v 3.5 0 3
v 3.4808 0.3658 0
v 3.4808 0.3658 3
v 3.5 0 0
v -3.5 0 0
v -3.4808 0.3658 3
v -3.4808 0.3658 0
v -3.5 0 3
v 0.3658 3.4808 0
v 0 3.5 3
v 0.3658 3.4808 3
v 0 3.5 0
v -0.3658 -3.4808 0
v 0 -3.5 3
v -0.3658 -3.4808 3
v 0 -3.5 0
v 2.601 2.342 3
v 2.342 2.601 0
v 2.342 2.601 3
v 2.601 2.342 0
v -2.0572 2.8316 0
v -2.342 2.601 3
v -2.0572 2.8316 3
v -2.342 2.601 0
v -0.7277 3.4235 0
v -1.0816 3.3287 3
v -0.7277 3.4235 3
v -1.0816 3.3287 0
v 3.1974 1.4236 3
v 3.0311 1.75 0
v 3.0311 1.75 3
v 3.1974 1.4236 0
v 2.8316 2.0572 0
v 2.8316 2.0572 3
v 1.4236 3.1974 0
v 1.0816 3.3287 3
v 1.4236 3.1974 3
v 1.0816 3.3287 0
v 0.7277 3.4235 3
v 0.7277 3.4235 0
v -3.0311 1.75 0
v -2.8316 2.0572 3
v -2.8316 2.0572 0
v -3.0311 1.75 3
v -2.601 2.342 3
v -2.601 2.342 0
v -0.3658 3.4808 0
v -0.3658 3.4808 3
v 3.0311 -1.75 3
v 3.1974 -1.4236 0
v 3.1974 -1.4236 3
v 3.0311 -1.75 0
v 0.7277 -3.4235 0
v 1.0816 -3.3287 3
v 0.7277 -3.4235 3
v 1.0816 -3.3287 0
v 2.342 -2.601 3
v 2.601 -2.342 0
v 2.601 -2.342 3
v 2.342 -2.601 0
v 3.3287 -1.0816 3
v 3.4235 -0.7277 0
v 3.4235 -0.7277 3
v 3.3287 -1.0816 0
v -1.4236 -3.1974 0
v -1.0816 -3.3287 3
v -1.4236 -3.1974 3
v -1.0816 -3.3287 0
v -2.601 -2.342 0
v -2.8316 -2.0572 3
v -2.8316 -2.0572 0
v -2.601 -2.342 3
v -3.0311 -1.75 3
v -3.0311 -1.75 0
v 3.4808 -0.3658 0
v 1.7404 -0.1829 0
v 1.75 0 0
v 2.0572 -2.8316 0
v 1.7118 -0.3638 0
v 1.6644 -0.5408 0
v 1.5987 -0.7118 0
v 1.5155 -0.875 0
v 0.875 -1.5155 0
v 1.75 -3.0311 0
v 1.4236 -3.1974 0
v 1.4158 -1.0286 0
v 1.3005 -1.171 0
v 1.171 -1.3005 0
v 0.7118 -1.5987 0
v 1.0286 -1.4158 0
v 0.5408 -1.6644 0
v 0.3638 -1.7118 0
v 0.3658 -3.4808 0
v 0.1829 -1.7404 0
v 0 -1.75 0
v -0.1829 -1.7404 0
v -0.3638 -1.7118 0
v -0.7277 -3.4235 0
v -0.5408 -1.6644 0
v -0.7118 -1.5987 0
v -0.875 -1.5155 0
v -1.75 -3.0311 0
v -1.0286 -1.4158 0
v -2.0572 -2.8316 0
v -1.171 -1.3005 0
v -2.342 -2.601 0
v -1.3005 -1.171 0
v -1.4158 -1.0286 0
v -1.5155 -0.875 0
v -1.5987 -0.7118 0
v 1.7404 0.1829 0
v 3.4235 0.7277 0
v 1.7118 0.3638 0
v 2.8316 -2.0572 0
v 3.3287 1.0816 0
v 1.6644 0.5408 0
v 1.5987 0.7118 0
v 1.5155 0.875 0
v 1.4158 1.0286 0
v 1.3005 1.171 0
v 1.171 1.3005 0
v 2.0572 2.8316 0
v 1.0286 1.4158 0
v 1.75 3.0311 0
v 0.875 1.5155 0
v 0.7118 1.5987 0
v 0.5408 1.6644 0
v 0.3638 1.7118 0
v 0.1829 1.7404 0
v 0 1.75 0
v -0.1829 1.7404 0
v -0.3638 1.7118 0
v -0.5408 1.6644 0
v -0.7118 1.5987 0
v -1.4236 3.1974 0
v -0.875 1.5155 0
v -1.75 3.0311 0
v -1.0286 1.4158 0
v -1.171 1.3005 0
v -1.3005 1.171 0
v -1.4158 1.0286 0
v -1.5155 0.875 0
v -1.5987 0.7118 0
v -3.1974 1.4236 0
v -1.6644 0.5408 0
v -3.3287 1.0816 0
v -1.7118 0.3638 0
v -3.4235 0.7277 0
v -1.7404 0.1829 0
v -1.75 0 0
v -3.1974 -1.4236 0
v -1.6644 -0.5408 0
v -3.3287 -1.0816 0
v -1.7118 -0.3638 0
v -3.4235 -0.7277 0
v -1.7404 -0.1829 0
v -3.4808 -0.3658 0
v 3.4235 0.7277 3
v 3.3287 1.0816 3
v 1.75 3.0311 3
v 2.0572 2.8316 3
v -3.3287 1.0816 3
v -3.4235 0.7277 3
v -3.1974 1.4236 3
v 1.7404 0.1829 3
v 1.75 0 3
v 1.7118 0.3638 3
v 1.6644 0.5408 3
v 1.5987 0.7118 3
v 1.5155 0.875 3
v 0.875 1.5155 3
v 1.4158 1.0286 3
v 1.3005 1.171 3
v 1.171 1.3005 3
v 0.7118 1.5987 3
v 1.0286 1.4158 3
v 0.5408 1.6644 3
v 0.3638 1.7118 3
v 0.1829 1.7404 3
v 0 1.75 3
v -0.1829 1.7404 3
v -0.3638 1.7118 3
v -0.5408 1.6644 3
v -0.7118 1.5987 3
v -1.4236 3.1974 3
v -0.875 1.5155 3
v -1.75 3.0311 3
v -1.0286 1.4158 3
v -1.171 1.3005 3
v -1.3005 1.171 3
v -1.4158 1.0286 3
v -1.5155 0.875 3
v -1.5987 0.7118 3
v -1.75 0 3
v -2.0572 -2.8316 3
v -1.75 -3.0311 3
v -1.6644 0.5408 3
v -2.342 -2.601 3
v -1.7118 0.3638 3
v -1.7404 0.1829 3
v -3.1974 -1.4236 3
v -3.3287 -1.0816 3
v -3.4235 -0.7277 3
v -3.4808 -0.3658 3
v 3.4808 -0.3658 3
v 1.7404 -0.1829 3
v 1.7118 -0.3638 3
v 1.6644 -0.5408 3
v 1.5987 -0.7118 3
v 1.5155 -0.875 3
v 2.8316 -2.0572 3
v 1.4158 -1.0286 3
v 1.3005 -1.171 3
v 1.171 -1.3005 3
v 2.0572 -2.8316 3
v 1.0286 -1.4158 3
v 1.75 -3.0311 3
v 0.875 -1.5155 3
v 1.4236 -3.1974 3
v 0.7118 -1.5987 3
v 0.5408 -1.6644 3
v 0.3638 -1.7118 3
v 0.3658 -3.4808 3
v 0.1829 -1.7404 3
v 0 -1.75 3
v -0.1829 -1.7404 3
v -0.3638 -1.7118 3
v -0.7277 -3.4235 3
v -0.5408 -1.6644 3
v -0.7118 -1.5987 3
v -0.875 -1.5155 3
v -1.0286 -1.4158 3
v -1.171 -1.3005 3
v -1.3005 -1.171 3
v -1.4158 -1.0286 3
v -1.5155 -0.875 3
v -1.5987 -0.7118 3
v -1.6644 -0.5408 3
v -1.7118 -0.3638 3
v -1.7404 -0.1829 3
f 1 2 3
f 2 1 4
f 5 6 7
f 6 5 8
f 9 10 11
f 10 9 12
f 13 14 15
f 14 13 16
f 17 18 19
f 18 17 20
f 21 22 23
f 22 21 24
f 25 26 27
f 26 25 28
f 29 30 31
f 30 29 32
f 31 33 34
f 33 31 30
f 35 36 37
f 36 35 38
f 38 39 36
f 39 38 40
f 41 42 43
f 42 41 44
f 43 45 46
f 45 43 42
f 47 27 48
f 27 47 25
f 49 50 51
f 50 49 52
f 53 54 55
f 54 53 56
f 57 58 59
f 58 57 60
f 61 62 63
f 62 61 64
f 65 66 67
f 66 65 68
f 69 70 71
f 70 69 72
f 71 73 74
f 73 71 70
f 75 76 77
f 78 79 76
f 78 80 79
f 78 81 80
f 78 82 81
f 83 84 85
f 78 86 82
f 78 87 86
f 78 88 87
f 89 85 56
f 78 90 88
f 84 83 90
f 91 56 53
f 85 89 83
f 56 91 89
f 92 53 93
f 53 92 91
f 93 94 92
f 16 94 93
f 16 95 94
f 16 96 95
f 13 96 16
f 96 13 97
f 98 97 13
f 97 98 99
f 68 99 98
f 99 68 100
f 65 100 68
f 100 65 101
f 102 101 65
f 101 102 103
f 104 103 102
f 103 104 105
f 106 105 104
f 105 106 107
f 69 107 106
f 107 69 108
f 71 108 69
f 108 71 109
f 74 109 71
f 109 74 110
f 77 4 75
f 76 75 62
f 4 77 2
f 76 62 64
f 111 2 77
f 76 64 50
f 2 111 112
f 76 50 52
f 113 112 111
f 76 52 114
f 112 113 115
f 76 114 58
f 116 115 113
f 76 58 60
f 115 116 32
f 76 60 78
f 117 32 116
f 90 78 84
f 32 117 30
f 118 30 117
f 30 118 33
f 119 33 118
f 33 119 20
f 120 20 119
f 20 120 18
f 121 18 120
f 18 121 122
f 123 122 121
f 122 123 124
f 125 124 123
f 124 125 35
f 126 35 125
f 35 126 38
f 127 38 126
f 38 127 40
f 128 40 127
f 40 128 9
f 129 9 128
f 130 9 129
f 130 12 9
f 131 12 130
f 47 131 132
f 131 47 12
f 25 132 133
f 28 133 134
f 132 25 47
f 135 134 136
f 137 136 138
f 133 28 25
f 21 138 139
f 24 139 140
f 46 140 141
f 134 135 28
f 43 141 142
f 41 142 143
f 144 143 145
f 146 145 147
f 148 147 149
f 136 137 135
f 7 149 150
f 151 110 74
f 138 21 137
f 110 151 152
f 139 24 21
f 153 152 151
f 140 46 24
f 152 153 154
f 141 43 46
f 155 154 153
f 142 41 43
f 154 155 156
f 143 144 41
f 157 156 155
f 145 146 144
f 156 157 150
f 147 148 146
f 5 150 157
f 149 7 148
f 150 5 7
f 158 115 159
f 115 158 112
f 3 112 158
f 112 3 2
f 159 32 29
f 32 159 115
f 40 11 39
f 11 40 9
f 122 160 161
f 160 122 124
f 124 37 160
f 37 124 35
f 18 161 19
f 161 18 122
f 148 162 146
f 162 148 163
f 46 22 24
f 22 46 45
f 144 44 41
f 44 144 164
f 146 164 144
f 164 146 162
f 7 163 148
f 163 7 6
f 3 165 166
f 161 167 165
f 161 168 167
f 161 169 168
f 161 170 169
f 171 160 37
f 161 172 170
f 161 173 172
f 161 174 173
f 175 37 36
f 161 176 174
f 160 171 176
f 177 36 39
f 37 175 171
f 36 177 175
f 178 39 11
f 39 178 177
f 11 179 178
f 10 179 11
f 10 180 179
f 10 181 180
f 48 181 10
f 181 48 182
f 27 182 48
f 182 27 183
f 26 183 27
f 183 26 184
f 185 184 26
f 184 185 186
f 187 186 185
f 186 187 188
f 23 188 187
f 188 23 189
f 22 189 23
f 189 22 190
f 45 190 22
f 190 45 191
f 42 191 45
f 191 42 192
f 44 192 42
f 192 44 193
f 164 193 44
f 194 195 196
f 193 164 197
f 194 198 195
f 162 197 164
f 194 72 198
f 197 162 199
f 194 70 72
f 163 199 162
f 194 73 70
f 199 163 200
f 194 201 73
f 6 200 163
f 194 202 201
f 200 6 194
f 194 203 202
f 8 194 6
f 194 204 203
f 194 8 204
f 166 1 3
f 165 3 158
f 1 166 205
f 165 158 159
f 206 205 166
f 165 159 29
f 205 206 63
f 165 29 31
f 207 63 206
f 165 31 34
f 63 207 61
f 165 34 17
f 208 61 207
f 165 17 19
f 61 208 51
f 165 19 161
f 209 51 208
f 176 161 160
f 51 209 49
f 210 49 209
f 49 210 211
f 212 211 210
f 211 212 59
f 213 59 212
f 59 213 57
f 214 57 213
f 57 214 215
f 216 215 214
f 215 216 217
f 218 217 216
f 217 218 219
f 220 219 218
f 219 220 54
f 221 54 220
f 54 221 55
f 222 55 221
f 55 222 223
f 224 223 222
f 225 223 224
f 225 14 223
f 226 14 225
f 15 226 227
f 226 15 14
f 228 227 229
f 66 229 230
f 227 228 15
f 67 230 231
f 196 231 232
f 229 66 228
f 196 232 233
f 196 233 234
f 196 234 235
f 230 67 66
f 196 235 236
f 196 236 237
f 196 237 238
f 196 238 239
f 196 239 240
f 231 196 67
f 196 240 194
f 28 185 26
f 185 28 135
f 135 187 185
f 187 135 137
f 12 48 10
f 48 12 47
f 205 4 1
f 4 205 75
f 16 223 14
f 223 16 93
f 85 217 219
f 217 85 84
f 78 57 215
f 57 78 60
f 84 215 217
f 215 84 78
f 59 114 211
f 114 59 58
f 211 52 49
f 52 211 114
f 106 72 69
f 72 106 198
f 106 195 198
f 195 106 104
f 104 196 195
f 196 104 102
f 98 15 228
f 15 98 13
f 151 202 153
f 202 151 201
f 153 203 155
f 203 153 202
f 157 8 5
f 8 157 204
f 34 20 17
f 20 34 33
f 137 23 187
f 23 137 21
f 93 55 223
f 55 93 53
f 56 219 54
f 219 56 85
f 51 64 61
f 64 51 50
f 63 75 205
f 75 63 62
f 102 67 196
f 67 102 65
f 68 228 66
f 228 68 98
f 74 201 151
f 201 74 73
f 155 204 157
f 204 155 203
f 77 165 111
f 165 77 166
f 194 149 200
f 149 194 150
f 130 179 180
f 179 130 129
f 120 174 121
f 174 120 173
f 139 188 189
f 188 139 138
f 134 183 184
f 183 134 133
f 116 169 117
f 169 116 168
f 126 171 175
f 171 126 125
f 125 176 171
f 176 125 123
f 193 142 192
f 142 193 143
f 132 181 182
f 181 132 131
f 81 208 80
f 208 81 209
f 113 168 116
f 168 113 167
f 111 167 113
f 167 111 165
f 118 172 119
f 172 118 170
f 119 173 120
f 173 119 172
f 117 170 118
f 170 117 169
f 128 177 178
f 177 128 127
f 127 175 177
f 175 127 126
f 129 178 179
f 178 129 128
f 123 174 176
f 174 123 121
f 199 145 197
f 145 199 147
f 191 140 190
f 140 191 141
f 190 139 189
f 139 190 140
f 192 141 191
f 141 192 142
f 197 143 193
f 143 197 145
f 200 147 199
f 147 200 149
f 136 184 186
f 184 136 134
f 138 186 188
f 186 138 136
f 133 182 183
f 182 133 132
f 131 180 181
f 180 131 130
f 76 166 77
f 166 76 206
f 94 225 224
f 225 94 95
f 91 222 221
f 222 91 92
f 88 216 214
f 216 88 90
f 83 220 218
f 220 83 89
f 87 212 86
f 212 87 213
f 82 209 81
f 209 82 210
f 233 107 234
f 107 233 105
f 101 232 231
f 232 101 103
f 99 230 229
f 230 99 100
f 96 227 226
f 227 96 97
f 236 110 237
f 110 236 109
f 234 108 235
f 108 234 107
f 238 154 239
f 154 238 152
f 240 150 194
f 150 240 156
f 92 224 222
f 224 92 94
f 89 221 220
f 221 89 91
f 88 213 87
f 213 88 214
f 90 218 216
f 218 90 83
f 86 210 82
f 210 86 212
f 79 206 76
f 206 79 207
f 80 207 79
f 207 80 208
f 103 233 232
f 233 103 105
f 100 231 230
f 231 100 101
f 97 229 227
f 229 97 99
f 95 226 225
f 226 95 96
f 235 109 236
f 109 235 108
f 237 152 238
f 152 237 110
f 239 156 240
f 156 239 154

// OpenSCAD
m3_inner_radius = 3.5 / 2;
m3_outer_radius = 7 / 2;
height = 3;
$fn = 60;

difference()
{
    cylinder(h = height, r = m3_outer_radius);
    cylinder(h = height, r = m3_inner_radius);

}
